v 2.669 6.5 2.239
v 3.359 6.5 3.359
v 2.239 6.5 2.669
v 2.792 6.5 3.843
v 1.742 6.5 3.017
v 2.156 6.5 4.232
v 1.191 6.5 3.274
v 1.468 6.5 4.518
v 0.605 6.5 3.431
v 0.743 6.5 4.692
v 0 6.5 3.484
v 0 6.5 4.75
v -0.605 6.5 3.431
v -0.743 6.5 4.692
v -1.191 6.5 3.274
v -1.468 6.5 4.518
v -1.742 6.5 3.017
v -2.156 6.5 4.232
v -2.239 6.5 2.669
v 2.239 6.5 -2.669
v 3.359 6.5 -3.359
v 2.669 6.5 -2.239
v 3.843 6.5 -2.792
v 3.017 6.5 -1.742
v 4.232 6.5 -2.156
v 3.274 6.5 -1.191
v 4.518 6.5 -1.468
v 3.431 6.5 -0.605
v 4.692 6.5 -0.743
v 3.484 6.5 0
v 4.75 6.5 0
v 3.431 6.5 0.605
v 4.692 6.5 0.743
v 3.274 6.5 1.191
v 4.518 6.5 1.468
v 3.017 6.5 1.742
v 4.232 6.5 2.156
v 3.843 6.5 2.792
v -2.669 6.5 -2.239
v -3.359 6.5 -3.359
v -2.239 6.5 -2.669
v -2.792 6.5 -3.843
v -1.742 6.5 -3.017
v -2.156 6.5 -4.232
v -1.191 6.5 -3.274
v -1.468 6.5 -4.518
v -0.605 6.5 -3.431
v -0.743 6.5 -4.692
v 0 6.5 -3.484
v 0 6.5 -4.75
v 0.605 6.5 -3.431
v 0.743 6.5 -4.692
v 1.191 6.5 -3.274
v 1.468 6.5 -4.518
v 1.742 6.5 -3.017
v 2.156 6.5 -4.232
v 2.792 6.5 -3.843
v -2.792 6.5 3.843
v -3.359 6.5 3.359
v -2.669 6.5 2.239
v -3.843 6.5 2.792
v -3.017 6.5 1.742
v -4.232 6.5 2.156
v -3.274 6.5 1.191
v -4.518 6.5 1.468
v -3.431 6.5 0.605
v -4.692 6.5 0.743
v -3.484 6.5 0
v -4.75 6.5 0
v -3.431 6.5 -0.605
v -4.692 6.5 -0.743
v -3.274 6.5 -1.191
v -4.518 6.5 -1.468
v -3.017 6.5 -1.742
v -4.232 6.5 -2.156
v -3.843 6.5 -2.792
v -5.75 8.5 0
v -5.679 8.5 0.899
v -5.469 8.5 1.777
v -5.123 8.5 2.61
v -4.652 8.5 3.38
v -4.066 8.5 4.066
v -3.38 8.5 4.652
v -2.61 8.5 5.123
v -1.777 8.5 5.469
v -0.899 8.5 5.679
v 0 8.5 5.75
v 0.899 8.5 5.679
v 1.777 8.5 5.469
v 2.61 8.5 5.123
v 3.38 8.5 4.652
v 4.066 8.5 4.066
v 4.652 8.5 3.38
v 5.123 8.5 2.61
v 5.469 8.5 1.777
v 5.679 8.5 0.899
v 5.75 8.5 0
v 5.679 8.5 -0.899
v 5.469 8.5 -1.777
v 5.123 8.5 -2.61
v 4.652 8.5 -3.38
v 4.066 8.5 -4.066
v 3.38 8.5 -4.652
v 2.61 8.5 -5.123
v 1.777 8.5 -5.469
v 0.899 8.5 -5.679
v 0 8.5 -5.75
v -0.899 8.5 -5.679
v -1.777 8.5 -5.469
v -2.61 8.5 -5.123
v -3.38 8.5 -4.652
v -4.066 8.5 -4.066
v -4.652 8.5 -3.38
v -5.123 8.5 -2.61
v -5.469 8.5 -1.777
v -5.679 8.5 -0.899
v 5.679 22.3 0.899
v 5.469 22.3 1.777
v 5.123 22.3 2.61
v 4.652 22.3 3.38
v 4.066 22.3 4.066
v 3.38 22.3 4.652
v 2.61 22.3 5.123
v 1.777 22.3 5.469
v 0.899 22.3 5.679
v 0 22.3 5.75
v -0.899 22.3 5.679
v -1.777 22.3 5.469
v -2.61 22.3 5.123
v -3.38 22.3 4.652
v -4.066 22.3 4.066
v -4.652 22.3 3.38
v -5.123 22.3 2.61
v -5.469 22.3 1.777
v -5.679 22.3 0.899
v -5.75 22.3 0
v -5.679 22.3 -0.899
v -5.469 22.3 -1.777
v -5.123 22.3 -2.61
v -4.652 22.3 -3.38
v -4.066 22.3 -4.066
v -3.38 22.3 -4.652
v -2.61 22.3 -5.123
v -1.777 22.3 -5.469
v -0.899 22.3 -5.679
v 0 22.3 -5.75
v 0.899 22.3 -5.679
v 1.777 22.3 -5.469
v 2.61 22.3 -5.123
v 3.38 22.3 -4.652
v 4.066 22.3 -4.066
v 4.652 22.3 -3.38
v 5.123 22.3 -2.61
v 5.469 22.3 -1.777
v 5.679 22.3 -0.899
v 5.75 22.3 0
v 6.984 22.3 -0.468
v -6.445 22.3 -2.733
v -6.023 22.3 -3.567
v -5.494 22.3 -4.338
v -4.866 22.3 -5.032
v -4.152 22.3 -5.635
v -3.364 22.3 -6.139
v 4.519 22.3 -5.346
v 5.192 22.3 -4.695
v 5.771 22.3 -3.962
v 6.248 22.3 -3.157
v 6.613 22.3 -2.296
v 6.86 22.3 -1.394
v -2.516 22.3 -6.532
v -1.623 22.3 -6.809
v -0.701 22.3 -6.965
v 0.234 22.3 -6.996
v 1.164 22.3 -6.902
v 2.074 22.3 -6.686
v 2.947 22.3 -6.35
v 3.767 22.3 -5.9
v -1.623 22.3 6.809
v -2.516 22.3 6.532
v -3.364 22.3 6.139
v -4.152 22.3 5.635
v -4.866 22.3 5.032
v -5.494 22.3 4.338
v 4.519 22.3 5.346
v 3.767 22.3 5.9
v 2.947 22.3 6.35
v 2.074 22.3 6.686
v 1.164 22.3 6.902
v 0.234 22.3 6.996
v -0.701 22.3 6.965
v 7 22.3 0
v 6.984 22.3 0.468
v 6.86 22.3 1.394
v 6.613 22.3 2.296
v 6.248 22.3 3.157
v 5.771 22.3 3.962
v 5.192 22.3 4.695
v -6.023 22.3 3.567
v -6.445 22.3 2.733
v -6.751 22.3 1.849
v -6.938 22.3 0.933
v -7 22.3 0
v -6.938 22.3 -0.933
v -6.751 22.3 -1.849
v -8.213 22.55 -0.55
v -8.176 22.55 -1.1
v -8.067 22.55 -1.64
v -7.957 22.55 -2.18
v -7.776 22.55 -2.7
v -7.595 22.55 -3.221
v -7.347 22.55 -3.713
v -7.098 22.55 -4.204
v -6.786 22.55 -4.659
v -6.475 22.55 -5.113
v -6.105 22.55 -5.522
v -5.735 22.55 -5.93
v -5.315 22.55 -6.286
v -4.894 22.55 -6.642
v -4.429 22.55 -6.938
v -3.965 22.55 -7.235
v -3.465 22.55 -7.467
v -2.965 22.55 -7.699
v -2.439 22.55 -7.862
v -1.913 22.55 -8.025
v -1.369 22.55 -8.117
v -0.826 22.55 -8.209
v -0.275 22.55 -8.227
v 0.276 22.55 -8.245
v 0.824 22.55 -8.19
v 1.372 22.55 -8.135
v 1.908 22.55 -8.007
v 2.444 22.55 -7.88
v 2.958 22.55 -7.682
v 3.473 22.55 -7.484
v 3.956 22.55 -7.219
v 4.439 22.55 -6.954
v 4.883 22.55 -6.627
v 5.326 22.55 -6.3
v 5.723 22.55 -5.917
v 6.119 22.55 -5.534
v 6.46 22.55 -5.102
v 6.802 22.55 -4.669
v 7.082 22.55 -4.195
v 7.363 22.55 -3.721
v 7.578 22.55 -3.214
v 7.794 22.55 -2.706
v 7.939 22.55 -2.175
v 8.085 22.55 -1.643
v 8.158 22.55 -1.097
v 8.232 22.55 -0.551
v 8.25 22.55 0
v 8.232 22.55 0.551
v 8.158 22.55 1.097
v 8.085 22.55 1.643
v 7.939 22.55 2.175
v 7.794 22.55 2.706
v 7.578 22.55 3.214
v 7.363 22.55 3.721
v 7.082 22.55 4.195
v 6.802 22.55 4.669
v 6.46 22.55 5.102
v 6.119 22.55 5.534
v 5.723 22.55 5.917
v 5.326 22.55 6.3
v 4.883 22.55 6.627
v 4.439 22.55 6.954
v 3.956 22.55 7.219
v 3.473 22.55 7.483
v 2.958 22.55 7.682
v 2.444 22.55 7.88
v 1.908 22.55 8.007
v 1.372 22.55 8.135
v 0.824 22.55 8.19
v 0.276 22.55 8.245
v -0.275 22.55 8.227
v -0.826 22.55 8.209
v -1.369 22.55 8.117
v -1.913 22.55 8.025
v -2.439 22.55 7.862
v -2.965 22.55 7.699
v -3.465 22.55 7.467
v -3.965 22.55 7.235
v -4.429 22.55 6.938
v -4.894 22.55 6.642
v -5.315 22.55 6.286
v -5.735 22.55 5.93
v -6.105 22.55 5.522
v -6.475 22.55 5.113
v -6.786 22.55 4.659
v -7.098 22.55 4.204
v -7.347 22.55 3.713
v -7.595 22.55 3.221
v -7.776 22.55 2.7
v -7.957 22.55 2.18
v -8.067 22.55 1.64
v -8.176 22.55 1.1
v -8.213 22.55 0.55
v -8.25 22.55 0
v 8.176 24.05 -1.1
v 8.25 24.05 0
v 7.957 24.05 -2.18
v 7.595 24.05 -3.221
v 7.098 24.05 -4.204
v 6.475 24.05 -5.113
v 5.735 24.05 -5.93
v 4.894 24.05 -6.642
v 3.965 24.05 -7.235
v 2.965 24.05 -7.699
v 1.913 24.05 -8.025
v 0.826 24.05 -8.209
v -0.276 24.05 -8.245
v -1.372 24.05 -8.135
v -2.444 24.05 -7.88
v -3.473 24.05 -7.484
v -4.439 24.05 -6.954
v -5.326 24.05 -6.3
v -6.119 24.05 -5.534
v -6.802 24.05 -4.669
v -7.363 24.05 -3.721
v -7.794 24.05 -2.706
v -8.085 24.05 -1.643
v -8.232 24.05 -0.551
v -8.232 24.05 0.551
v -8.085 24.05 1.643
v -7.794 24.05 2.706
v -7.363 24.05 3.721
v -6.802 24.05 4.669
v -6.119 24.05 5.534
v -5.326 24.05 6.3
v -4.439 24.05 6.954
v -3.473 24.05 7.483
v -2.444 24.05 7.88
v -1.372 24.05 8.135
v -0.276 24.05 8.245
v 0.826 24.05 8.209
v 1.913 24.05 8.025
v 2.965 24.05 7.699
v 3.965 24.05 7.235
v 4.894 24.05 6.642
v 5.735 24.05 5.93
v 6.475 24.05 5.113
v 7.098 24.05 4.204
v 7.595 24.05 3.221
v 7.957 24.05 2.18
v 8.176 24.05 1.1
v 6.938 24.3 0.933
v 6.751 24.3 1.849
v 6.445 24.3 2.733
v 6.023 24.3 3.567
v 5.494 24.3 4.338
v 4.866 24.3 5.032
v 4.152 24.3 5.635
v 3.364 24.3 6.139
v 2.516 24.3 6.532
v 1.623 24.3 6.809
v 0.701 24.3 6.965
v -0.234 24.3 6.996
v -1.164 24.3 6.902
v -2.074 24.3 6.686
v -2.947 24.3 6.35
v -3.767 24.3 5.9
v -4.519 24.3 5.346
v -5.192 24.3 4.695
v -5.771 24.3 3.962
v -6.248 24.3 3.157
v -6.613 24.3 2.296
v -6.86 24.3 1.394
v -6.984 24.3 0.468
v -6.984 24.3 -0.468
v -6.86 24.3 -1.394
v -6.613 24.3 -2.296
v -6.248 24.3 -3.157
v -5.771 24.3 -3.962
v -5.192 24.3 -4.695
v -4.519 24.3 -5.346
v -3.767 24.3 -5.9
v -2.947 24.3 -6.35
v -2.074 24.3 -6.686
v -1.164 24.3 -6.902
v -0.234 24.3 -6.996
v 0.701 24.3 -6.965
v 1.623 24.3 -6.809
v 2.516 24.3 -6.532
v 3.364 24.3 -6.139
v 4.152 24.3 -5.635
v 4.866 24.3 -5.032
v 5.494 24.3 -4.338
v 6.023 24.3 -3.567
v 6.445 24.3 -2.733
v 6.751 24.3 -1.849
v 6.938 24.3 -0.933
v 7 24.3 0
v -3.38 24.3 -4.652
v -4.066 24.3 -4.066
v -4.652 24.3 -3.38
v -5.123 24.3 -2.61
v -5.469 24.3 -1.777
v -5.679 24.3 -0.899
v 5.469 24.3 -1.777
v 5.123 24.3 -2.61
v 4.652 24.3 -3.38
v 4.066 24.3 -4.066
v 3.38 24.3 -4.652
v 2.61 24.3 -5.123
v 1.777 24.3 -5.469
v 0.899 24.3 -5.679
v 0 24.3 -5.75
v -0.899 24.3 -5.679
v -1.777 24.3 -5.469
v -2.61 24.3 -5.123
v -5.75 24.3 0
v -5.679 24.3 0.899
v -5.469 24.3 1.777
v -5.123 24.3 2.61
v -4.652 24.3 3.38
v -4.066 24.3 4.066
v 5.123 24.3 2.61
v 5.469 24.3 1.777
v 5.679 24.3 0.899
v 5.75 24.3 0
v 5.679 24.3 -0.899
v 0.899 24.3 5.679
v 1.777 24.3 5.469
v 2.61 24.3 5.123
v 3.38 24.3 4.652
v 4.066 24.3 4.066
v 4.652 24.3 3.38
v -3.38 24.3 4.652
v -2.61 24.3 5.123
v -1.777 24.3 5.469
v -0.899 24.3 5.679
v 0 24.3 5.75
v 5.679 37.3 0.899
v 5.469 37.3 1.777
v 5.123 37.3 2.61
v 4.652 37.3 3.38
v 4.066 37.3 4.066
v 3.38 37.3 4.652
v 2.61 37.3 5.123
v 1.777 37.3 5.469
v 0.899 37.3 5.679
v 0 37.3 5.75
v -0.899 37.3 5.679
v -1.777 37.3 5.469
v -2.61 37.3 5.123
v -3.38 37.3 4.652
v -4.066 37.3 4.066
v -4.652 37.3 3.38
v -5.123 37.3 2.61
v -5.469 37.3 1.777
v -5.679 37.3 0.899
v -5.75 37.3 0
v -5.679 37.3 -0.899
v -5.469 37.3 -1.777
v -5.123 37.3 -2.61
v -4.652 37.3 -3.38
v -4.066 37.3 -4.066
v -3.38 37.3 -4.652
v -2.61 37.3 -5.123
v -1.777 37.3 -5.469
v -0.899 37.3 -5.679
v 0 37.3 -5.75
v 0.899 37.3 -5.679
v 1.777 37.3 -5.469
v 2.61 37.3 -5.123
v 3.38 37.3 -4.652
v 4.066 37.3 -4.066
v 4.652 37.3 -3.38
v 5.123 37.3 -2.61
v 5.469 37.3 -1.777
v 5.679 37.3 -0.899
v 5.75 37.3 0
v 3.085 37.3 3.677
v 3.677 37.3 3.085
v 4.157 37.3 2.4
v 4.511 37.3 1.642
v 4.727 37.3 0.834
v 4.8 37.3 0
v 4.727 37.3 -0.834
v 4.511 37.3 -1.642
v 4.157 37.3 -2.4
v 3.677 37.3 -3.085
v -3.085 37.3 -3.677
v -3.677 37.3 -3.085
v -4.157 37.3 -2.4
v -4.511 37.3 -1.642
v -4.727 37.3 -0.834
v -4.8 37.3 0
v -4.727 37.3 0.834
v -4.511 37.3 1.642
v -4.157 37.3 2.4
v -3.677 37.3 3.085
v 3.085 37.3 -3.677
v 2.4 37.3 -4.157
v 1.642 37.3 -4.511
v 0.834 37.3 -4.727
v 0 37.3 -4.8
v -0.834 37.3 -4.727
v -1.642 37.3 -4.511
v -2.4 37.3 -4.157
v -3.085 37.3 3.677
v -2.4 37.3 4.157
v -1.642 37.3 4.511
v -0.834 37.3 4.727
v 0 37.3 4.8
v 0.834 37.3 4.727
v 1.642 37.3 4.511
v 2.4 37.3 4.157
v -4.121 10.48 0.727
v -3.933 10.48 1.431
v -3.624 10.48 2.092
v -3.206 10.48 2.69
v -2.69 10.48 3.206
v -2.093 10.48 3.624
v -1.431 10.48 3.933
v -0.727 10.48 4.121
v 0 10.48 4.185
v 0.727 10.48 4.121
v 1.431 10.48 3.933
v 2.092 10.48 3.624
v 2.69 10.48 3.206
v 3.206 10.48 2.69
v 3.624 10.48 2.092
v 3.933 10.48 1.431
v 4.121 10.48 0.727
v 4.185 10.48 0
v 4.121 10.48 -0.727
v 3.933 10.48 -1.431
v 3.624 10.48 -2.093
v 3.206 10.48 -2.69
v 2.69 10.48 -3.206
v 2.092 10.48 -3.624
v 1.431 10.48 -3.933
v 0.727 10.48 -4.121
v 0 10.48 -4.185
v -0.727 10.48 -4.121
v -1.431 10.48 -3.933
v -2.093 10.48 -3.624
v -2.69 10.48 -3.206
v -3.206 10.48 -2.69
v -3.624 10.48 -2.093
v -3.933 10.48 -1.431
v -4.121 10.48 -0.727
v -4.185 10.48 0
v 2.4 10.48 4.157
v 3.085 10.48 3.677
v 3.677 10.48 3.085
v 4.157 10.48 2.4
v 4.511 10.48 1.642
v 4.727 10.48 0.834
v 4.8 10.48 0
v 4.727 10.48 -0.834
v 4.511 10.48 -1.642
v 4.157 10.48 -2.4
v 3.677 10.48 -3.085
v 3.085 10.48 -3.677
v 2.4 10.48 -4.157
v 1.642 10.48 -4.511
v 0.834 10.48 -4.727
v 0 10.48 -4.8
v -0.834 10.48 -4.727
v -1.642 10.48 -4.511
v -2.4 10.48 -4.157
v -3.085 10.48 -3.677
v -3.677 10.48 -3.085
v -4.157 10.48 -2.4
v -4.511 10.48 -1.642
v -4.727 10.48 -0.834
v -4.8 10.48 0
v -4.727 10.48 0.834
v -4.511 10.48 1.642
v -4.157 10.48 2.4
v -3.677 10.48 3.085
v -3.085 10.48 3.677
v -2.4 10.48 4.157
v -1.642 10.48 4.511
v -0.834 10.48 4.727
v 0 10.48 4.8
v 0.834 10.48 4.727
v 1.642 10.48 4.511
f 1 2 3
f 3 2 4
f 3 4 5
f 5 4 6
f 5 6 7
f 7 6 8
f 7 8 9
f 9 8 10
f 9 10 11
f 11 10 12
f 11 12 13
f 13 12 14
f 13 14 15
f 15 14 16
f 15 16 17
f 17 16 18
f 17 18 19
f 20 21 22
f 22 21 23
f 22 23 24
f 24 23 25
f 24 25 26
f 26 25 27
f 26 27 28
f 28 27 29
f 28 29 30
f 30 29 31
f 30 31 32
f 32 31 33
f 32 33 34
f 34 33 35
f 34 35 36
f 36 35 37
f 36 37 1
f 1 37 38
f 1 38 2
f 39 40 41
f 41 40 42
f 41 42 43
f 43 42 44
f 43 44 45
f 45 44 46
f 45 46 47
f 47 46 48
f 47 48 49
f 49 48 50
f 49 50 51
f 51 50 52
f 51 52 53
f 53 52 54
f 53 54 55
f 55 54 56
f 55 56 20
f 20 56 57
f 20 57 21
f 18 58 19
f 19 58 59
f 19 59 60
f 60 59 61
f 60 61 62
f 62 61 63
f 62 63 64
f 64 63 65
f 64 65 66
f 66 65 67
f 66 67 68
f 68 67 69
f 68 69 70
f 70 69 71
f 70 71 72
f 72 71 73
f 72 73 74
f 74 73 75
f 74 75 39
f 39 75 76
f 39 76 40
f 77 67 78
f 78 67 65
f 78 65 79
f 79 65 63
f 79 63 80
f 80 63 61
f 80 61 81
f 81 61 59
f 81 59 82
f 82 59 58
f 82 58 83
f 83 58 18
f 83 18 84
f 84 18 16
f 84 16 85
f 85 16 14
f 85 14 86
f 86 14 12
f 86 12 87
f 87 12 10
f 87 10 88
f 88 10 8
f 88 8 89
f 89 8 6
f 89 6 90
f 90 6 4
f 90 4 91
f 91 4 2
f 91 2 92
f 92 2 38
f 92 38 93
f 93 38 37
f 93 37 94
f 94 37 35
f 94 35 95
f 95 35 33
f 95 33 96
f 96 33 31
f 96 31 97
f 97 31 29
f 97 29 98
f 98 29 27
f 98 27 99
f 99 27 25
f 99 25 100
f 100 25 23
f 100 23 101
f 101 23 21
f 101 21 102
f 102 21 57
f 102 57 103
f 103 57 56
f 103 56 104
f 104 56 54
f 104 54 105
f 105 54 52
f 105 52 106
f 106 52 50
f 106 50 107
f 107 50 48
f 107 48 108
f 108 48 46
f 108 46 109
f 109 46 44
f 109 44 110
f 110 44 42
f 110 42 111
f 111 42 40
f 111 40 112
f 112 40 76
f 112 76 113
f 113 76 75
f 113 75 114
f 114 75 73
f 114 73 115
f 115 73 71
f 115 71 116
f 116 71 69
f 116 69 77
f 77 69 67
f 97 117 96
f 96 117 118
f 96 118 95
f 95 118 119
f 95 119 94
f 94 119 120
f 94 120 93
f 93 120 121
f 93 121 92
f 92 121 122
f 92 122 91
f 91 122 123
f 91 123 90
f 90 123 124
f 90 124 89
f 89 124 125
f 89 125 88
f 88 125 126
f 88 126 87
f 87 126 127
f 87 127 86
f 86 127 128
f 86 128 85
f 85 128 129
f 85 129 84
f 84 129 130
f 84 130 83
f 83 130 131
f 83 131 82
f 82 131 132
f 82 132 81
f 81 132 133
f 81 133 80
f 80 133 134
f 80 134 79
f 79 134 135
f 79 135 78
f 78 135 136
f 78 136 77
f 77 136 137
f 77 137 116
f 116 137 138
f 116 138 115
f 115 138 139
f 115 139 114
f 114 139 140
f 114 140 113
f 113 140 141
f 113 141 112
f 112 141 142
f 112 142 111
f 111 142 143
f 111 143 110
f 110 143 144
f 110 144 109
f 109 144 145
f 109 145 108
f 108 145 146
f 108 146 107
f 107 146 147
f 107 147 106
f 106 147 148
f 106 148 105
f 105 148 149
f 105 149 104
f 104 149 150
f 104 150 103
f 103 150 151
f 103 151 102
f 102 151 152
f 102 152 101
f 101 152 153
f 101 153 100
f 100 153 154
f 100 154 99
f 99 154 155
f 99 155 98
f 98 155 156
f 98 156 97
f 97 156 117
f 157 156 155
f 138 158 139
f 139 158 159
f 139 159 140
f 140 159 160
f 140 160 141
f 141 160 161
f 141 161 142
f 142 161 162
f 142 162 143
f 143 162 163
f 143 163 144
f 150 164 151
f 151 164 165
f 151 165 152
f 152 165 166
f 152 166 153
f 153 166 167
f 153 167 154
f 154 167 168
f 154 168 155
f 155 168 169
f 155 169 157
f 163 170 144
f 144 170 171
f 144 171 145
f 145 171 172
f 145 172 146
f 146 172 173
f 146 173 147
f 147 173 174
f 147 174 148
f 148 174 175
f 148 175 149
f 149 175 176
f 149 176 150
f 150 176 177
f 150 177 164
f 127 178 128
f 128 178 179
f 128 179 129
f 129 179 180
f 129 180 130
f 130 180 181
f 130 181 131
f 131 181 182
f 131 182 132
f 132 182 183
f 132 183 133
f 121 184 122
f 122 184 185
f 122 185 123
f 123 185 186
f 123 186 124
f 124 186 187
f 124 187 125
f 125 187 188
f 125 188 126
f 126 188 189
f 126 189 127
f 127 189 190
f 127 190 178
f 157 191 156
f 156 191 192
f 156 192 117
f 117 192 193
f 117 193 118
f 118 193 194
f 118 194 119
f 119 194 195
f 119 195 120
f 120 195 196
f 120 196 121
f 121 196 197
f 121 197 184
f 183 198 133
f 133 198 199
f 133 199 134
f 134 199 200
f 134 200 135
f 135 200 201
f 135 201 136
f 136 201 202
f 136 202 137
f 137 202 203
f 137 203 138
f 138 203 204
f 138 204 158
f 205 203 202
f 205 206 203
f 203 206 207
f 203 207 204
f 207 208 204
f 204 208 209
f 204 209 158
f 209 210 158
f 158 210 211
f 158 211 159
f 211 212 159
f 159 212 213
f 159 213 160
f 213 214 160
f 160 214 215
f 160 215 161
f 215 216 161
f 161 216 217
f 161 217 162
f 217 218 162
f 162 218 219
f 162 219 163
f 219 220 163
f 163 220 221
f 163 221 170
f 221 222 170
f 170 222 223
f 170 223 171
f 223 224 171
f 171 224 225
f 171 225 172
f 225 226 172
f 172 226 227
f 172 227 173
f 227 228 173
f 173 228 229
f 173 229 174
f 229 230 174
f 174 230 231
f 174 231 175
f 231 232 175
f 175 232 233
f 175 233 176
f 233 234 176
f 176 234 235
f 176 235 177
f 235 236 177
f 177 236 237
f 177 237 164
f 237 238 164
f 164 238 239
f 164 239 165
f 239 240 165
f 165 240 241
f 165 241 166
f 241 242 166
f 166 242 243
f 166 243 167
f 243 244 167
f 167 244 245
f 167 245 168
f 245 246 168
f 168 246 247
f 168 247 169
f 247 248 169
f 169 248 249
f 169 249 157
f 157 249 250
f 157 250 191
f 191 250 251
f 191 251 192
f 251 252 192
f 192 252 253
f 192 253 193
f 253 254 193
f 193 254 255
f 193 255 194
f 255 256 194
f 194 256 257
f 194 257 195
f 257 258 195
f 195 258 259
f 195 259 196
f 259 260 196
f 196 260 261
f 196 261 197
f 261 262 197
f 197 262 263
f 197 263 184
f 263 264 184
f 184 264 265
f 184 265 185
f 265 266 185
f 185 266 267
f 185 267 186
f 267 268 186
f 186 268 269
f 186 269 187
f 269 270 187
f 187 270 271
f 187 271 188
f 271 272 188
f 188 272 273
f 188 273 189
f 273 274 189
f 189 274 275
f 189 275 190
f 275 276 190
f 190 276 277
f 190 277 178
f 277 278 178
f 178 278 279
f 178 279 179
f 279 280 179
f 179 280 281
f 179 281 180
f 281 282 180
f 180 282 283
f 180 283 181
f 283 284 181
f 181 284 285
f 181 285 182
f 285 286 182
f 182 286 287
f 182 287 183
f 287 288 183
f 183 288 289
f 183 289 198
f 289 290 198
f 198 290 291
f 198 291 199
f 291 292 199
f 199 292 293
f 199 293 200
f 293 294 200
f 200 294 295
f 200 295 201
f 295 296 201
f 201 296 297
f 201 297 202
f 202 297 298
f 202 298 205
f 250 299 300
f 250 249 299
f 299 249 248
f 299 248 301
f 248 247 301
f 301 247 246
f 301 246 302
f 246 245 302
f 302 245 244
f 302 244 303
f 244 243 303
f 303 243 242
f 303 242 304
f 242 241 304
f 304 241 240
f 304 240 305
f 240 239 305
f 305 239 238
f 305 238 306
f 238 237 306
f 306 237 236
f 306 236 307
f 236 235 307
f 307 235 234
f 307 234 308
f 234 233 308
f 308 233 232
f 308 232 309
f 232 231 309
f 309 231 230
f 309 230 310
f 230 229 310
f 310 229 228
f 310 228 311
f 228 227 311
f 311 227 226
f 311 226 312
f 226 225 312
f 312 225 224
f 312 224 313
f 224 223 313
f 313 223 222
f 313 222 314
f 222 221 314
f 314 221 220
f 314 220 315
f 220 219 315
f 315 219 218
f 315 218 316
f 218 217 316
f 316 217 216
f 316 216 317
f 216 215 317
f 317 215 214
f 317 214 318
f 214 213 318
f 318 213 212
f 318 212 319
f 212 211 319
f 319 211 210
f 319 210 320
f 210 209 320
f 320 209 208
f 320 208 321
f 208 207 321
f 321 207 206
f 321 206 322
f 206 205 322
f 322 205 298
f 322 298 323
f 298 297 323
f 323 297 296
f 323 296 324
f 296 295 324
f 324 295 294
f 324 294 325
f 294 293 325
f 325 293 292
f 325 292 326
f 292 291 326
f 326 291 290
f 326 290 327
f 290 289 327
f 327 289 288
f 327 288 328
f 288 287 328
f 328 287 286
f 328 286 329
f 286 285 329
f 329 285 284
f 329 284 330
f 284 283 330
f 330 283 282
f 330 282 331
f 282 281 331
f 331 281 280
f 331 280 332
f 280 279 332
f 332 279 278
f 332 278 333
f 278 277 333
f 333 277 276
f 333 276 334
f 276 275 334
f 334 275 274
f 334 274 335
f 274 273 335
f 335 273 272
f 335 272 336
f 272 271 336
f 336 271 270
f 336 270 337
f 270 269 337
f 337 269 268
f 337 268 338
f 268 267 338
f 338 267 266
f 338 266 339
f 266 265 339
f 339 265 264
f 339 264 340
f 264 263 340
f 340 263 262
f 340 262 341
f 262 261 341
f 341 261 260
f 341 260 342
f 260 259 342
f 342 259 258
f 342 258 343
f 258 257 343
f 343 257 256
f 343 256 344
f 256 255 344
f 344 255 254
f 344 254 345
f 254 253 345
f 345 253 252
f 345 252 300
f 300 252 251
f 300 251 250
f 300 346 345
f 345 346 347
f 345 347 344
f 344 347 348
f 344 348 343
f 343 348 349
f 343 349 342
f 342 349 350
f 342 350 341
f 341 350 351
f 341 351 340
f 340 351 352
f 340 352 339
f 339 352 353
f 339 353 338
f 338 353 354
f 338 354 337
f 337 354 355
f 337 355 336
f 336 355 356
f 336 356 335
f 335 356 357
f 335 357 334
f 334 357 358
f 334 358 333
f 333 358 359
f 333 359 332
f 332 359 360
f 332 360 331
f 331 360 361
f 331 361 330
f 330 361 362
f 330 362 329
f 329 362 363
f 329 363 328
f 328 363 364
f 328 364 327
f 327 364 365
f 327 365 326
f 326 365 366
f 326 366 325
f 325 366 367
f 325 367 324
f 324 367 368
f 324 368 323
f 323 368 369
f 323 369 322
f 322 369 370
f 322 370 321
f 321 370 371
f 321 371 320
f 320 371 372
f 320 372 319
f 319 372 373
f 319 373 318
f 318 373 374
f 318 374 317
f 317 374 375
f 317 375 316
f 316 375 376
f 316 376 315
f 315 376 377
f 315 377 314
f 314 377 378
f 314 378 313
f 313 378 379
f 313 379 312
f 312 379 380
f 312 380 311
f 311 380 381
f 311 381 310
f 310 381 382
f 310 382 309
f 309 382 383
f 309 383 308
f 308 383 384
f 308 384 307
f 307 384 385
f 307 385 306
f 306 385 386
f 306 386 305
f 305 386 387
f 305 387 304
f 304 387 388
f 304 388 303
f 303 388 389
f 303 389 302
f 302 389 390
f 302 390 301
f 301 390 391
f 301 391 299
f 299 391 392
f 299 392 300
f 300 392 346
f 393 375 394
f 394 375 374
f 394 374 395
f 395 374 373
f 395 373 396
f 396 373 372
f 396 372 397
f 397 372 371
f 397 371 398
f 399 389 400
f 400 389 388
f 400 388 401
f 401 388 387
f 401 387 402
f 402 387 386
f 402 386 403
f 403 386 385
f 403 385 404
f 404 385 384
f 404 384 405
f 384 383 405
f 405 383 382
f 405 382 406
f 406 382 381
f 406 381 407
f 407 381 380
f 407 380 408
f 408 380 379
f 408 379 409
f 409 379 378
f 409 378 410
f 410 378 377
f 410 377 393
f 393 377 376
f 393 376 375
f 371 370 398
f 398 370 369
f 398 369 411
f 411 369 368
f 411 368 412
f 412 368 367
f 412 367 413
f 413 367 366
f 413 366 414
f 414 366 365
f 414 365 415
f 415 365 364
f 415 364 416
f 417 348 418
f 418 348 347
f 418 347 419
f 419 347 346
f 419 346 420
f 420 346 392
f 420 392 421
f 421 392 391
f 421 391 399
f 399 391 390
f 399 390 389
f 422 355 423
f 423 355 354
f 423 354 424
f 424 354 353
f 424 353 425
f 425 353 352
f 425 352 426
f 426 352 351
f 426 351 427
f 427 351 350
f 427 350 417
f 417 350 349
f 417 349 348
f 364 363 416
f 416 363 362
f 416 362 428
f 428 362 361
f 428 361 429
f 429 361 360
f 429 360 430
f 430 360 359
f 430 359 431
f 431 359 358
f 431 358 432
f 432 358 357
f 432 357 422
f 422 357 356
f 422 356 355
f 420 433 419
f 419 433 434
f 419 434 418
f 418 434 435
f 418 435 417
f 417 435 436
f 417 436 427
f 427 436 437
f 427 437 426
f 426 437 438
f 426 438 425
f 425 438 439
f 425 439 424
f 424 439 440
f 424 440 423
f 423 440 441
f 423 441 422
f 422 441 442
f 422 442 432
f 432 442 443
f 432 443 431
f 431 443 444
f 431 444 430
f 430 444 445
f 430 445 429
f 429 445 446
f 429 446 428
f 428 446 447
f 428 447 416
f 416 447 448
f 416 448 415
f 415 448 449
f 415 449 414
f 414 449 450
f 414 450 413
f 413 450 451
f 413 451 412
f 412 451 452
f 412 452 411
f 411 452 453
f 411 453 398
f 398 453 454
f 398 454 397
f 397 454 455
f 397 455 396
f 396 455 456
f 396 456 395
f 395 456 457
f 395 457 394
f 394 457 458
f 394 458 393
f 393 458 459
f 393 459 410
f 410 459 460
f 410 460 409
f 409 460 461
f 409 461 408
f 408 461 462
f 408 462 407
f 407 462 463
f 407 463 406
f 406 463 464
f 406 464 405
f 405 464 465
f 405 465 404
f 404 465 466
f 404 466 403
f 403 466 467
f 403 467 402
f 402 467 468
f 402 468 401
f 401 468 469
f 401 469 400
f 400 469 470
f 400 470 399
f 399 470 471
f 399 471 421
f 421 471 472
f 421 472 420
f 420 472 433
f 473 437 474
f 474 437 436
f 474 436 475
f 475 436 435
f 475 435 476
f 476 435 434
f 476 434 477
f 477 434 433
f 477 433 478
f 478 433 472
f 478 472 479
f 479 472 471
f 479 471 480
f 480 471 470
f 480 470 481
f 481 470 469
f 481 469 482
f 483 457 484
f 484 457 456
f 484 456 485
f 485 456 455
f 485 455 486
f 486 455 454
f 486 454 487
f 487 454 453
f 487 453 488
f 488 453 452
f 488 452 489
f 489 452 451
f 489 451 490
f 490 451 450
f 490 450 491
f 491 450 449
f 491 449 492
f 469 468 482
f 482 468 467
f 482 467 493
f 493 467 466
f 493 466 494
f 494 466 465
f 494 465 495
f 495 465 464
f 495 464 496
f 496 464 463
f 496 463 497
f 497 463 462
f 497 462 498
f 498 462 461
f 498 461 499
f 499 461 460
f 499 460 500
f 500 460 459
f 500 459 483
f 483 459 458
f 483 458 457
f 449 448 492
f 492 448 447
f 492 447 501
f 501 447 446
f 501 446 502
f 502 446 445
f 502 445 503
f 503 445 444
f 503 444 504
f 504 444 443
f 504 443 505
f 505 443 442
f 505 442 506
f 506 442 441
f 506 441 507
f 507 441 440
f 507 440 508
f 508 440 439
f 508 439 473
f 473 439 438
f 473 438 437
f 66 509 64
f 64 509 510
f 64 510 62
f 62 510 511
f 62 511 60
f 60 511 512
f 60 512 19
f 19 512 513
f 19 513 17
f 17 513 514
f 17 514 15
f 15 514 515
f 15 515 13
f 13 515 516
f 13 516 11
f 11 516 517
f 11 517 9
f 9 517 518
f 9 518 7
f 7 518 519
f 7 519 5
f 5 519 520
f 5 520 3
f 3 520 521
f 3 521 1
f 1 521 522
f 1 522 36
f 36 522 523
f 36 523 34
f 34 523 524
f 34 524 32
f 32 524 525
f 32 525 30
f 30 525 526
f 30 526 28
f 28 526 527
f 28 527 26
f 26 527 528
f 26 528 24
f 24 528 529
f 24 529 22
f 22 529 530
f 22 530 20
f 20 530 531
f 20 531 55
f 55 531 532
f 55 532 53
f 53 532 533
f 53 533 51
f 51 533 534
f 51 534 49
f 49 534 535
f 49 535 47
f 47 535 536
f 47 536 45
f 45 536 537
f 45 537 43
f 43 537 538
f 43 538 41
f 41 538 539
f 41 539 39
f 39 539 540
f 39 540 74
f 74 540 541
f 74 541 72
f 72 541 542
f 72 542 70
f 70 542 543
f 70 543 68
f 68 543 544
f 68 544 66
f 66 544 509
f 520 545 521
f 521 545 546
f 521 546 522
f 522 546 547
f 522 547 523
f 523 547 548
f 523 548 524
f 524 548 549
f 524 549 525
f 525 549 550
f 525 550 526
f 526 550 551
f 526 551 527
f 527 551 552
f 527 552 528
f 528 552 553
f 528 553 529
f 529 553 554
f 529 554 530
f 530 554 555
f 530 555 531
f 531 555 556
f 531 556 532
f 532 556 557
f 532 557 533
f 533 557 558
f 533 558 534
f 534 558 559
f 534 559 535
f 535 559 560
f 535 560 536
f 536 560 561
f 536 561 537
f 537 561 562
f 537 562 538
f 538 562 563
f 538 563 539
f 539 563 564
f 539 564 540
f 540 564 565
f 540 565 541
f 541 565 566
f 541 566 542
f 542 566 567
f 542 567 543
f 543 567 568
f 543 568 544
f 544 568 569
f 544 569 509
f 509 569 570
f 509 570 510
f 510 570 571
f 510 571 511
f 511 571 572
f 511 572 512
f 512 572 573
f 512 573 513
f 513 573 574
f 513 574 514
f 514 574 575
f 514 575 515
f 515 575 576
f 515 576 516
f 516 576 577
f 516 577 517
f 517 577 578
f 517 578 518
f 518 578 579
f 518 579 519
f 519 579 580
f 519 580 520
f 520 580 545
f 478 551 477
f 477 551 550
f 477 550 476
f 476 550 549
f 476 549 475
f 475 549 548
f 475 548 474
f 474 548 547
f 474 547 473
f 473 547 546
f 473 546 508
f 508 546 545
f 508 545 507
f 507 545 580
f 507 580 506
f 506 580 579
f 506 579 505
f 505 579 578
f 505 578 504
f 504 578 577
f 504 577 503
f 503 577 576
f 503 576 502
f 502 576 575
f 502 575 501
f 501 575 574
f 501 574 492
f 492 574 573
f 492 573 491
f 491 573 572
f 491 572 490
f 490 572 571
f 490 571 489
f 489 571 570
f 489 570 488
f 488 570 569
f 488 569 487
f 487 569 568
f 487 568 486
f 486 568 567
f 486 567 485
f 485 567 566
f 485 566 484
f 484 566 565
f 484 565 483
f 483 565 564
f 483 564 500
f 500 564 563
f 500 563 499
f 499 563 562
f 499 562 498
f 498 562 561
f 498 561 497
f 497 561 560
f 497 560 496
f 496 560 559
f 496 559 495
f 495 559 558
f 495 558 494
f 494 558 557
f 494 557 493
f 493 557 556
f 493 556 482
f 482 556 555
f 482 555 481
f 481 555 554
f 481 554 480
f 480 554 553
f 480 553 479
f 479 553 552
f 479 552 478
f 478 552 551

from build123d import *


with BuildPart() as part:
    # Sketch1 → 5.63 mm bottom to pen tip (revolve)
    with BuildSketch(Plane.XY):
        Polygon((0, 0), (2.375, 0), (3.2, 5.5), (3.2, 6.5), (4.75, 6.5), (5.75, 8.5), (5.75, 22.3), (7, 22.3), (8.25, 22.55), (8.25, 24.05), (7, 24.3), (5.75, 24.3), (5.75, 37.3), (0, 37.3), align=None)
    revolve(axis=Axis((0, -143.950460456, 0), (0, 1, 0)))

    # Sketch2 → Cut-Revolve1 (revolve, cut)
    with BuildSketch(Plane.XY):
        Polygon((0, -5.63), (0.39, -5.63), (0.39, -2.03), (1.1, -2.03), (1.65, 0.35), (2.4, 0.35), (4.185, 10.48), (4.8, 10.48), (4.8, 42.48), (5.967443991, 42.48), (5.967443991, 45.051498483), (0, 45.051498483), align=None)
    revolve(axis=Axis((0, -1000, 0), (0, 1, 0)), mode=Mode.SUBTRACT)


with BuildPart() as body_2:
    # of the pieces the cut leaves, the one that is kept (cut_revolve1_keep)
    add(part.part.solids().sort_by_distance((4.75, 6.5, 0))[0])


solid = body_2.part
